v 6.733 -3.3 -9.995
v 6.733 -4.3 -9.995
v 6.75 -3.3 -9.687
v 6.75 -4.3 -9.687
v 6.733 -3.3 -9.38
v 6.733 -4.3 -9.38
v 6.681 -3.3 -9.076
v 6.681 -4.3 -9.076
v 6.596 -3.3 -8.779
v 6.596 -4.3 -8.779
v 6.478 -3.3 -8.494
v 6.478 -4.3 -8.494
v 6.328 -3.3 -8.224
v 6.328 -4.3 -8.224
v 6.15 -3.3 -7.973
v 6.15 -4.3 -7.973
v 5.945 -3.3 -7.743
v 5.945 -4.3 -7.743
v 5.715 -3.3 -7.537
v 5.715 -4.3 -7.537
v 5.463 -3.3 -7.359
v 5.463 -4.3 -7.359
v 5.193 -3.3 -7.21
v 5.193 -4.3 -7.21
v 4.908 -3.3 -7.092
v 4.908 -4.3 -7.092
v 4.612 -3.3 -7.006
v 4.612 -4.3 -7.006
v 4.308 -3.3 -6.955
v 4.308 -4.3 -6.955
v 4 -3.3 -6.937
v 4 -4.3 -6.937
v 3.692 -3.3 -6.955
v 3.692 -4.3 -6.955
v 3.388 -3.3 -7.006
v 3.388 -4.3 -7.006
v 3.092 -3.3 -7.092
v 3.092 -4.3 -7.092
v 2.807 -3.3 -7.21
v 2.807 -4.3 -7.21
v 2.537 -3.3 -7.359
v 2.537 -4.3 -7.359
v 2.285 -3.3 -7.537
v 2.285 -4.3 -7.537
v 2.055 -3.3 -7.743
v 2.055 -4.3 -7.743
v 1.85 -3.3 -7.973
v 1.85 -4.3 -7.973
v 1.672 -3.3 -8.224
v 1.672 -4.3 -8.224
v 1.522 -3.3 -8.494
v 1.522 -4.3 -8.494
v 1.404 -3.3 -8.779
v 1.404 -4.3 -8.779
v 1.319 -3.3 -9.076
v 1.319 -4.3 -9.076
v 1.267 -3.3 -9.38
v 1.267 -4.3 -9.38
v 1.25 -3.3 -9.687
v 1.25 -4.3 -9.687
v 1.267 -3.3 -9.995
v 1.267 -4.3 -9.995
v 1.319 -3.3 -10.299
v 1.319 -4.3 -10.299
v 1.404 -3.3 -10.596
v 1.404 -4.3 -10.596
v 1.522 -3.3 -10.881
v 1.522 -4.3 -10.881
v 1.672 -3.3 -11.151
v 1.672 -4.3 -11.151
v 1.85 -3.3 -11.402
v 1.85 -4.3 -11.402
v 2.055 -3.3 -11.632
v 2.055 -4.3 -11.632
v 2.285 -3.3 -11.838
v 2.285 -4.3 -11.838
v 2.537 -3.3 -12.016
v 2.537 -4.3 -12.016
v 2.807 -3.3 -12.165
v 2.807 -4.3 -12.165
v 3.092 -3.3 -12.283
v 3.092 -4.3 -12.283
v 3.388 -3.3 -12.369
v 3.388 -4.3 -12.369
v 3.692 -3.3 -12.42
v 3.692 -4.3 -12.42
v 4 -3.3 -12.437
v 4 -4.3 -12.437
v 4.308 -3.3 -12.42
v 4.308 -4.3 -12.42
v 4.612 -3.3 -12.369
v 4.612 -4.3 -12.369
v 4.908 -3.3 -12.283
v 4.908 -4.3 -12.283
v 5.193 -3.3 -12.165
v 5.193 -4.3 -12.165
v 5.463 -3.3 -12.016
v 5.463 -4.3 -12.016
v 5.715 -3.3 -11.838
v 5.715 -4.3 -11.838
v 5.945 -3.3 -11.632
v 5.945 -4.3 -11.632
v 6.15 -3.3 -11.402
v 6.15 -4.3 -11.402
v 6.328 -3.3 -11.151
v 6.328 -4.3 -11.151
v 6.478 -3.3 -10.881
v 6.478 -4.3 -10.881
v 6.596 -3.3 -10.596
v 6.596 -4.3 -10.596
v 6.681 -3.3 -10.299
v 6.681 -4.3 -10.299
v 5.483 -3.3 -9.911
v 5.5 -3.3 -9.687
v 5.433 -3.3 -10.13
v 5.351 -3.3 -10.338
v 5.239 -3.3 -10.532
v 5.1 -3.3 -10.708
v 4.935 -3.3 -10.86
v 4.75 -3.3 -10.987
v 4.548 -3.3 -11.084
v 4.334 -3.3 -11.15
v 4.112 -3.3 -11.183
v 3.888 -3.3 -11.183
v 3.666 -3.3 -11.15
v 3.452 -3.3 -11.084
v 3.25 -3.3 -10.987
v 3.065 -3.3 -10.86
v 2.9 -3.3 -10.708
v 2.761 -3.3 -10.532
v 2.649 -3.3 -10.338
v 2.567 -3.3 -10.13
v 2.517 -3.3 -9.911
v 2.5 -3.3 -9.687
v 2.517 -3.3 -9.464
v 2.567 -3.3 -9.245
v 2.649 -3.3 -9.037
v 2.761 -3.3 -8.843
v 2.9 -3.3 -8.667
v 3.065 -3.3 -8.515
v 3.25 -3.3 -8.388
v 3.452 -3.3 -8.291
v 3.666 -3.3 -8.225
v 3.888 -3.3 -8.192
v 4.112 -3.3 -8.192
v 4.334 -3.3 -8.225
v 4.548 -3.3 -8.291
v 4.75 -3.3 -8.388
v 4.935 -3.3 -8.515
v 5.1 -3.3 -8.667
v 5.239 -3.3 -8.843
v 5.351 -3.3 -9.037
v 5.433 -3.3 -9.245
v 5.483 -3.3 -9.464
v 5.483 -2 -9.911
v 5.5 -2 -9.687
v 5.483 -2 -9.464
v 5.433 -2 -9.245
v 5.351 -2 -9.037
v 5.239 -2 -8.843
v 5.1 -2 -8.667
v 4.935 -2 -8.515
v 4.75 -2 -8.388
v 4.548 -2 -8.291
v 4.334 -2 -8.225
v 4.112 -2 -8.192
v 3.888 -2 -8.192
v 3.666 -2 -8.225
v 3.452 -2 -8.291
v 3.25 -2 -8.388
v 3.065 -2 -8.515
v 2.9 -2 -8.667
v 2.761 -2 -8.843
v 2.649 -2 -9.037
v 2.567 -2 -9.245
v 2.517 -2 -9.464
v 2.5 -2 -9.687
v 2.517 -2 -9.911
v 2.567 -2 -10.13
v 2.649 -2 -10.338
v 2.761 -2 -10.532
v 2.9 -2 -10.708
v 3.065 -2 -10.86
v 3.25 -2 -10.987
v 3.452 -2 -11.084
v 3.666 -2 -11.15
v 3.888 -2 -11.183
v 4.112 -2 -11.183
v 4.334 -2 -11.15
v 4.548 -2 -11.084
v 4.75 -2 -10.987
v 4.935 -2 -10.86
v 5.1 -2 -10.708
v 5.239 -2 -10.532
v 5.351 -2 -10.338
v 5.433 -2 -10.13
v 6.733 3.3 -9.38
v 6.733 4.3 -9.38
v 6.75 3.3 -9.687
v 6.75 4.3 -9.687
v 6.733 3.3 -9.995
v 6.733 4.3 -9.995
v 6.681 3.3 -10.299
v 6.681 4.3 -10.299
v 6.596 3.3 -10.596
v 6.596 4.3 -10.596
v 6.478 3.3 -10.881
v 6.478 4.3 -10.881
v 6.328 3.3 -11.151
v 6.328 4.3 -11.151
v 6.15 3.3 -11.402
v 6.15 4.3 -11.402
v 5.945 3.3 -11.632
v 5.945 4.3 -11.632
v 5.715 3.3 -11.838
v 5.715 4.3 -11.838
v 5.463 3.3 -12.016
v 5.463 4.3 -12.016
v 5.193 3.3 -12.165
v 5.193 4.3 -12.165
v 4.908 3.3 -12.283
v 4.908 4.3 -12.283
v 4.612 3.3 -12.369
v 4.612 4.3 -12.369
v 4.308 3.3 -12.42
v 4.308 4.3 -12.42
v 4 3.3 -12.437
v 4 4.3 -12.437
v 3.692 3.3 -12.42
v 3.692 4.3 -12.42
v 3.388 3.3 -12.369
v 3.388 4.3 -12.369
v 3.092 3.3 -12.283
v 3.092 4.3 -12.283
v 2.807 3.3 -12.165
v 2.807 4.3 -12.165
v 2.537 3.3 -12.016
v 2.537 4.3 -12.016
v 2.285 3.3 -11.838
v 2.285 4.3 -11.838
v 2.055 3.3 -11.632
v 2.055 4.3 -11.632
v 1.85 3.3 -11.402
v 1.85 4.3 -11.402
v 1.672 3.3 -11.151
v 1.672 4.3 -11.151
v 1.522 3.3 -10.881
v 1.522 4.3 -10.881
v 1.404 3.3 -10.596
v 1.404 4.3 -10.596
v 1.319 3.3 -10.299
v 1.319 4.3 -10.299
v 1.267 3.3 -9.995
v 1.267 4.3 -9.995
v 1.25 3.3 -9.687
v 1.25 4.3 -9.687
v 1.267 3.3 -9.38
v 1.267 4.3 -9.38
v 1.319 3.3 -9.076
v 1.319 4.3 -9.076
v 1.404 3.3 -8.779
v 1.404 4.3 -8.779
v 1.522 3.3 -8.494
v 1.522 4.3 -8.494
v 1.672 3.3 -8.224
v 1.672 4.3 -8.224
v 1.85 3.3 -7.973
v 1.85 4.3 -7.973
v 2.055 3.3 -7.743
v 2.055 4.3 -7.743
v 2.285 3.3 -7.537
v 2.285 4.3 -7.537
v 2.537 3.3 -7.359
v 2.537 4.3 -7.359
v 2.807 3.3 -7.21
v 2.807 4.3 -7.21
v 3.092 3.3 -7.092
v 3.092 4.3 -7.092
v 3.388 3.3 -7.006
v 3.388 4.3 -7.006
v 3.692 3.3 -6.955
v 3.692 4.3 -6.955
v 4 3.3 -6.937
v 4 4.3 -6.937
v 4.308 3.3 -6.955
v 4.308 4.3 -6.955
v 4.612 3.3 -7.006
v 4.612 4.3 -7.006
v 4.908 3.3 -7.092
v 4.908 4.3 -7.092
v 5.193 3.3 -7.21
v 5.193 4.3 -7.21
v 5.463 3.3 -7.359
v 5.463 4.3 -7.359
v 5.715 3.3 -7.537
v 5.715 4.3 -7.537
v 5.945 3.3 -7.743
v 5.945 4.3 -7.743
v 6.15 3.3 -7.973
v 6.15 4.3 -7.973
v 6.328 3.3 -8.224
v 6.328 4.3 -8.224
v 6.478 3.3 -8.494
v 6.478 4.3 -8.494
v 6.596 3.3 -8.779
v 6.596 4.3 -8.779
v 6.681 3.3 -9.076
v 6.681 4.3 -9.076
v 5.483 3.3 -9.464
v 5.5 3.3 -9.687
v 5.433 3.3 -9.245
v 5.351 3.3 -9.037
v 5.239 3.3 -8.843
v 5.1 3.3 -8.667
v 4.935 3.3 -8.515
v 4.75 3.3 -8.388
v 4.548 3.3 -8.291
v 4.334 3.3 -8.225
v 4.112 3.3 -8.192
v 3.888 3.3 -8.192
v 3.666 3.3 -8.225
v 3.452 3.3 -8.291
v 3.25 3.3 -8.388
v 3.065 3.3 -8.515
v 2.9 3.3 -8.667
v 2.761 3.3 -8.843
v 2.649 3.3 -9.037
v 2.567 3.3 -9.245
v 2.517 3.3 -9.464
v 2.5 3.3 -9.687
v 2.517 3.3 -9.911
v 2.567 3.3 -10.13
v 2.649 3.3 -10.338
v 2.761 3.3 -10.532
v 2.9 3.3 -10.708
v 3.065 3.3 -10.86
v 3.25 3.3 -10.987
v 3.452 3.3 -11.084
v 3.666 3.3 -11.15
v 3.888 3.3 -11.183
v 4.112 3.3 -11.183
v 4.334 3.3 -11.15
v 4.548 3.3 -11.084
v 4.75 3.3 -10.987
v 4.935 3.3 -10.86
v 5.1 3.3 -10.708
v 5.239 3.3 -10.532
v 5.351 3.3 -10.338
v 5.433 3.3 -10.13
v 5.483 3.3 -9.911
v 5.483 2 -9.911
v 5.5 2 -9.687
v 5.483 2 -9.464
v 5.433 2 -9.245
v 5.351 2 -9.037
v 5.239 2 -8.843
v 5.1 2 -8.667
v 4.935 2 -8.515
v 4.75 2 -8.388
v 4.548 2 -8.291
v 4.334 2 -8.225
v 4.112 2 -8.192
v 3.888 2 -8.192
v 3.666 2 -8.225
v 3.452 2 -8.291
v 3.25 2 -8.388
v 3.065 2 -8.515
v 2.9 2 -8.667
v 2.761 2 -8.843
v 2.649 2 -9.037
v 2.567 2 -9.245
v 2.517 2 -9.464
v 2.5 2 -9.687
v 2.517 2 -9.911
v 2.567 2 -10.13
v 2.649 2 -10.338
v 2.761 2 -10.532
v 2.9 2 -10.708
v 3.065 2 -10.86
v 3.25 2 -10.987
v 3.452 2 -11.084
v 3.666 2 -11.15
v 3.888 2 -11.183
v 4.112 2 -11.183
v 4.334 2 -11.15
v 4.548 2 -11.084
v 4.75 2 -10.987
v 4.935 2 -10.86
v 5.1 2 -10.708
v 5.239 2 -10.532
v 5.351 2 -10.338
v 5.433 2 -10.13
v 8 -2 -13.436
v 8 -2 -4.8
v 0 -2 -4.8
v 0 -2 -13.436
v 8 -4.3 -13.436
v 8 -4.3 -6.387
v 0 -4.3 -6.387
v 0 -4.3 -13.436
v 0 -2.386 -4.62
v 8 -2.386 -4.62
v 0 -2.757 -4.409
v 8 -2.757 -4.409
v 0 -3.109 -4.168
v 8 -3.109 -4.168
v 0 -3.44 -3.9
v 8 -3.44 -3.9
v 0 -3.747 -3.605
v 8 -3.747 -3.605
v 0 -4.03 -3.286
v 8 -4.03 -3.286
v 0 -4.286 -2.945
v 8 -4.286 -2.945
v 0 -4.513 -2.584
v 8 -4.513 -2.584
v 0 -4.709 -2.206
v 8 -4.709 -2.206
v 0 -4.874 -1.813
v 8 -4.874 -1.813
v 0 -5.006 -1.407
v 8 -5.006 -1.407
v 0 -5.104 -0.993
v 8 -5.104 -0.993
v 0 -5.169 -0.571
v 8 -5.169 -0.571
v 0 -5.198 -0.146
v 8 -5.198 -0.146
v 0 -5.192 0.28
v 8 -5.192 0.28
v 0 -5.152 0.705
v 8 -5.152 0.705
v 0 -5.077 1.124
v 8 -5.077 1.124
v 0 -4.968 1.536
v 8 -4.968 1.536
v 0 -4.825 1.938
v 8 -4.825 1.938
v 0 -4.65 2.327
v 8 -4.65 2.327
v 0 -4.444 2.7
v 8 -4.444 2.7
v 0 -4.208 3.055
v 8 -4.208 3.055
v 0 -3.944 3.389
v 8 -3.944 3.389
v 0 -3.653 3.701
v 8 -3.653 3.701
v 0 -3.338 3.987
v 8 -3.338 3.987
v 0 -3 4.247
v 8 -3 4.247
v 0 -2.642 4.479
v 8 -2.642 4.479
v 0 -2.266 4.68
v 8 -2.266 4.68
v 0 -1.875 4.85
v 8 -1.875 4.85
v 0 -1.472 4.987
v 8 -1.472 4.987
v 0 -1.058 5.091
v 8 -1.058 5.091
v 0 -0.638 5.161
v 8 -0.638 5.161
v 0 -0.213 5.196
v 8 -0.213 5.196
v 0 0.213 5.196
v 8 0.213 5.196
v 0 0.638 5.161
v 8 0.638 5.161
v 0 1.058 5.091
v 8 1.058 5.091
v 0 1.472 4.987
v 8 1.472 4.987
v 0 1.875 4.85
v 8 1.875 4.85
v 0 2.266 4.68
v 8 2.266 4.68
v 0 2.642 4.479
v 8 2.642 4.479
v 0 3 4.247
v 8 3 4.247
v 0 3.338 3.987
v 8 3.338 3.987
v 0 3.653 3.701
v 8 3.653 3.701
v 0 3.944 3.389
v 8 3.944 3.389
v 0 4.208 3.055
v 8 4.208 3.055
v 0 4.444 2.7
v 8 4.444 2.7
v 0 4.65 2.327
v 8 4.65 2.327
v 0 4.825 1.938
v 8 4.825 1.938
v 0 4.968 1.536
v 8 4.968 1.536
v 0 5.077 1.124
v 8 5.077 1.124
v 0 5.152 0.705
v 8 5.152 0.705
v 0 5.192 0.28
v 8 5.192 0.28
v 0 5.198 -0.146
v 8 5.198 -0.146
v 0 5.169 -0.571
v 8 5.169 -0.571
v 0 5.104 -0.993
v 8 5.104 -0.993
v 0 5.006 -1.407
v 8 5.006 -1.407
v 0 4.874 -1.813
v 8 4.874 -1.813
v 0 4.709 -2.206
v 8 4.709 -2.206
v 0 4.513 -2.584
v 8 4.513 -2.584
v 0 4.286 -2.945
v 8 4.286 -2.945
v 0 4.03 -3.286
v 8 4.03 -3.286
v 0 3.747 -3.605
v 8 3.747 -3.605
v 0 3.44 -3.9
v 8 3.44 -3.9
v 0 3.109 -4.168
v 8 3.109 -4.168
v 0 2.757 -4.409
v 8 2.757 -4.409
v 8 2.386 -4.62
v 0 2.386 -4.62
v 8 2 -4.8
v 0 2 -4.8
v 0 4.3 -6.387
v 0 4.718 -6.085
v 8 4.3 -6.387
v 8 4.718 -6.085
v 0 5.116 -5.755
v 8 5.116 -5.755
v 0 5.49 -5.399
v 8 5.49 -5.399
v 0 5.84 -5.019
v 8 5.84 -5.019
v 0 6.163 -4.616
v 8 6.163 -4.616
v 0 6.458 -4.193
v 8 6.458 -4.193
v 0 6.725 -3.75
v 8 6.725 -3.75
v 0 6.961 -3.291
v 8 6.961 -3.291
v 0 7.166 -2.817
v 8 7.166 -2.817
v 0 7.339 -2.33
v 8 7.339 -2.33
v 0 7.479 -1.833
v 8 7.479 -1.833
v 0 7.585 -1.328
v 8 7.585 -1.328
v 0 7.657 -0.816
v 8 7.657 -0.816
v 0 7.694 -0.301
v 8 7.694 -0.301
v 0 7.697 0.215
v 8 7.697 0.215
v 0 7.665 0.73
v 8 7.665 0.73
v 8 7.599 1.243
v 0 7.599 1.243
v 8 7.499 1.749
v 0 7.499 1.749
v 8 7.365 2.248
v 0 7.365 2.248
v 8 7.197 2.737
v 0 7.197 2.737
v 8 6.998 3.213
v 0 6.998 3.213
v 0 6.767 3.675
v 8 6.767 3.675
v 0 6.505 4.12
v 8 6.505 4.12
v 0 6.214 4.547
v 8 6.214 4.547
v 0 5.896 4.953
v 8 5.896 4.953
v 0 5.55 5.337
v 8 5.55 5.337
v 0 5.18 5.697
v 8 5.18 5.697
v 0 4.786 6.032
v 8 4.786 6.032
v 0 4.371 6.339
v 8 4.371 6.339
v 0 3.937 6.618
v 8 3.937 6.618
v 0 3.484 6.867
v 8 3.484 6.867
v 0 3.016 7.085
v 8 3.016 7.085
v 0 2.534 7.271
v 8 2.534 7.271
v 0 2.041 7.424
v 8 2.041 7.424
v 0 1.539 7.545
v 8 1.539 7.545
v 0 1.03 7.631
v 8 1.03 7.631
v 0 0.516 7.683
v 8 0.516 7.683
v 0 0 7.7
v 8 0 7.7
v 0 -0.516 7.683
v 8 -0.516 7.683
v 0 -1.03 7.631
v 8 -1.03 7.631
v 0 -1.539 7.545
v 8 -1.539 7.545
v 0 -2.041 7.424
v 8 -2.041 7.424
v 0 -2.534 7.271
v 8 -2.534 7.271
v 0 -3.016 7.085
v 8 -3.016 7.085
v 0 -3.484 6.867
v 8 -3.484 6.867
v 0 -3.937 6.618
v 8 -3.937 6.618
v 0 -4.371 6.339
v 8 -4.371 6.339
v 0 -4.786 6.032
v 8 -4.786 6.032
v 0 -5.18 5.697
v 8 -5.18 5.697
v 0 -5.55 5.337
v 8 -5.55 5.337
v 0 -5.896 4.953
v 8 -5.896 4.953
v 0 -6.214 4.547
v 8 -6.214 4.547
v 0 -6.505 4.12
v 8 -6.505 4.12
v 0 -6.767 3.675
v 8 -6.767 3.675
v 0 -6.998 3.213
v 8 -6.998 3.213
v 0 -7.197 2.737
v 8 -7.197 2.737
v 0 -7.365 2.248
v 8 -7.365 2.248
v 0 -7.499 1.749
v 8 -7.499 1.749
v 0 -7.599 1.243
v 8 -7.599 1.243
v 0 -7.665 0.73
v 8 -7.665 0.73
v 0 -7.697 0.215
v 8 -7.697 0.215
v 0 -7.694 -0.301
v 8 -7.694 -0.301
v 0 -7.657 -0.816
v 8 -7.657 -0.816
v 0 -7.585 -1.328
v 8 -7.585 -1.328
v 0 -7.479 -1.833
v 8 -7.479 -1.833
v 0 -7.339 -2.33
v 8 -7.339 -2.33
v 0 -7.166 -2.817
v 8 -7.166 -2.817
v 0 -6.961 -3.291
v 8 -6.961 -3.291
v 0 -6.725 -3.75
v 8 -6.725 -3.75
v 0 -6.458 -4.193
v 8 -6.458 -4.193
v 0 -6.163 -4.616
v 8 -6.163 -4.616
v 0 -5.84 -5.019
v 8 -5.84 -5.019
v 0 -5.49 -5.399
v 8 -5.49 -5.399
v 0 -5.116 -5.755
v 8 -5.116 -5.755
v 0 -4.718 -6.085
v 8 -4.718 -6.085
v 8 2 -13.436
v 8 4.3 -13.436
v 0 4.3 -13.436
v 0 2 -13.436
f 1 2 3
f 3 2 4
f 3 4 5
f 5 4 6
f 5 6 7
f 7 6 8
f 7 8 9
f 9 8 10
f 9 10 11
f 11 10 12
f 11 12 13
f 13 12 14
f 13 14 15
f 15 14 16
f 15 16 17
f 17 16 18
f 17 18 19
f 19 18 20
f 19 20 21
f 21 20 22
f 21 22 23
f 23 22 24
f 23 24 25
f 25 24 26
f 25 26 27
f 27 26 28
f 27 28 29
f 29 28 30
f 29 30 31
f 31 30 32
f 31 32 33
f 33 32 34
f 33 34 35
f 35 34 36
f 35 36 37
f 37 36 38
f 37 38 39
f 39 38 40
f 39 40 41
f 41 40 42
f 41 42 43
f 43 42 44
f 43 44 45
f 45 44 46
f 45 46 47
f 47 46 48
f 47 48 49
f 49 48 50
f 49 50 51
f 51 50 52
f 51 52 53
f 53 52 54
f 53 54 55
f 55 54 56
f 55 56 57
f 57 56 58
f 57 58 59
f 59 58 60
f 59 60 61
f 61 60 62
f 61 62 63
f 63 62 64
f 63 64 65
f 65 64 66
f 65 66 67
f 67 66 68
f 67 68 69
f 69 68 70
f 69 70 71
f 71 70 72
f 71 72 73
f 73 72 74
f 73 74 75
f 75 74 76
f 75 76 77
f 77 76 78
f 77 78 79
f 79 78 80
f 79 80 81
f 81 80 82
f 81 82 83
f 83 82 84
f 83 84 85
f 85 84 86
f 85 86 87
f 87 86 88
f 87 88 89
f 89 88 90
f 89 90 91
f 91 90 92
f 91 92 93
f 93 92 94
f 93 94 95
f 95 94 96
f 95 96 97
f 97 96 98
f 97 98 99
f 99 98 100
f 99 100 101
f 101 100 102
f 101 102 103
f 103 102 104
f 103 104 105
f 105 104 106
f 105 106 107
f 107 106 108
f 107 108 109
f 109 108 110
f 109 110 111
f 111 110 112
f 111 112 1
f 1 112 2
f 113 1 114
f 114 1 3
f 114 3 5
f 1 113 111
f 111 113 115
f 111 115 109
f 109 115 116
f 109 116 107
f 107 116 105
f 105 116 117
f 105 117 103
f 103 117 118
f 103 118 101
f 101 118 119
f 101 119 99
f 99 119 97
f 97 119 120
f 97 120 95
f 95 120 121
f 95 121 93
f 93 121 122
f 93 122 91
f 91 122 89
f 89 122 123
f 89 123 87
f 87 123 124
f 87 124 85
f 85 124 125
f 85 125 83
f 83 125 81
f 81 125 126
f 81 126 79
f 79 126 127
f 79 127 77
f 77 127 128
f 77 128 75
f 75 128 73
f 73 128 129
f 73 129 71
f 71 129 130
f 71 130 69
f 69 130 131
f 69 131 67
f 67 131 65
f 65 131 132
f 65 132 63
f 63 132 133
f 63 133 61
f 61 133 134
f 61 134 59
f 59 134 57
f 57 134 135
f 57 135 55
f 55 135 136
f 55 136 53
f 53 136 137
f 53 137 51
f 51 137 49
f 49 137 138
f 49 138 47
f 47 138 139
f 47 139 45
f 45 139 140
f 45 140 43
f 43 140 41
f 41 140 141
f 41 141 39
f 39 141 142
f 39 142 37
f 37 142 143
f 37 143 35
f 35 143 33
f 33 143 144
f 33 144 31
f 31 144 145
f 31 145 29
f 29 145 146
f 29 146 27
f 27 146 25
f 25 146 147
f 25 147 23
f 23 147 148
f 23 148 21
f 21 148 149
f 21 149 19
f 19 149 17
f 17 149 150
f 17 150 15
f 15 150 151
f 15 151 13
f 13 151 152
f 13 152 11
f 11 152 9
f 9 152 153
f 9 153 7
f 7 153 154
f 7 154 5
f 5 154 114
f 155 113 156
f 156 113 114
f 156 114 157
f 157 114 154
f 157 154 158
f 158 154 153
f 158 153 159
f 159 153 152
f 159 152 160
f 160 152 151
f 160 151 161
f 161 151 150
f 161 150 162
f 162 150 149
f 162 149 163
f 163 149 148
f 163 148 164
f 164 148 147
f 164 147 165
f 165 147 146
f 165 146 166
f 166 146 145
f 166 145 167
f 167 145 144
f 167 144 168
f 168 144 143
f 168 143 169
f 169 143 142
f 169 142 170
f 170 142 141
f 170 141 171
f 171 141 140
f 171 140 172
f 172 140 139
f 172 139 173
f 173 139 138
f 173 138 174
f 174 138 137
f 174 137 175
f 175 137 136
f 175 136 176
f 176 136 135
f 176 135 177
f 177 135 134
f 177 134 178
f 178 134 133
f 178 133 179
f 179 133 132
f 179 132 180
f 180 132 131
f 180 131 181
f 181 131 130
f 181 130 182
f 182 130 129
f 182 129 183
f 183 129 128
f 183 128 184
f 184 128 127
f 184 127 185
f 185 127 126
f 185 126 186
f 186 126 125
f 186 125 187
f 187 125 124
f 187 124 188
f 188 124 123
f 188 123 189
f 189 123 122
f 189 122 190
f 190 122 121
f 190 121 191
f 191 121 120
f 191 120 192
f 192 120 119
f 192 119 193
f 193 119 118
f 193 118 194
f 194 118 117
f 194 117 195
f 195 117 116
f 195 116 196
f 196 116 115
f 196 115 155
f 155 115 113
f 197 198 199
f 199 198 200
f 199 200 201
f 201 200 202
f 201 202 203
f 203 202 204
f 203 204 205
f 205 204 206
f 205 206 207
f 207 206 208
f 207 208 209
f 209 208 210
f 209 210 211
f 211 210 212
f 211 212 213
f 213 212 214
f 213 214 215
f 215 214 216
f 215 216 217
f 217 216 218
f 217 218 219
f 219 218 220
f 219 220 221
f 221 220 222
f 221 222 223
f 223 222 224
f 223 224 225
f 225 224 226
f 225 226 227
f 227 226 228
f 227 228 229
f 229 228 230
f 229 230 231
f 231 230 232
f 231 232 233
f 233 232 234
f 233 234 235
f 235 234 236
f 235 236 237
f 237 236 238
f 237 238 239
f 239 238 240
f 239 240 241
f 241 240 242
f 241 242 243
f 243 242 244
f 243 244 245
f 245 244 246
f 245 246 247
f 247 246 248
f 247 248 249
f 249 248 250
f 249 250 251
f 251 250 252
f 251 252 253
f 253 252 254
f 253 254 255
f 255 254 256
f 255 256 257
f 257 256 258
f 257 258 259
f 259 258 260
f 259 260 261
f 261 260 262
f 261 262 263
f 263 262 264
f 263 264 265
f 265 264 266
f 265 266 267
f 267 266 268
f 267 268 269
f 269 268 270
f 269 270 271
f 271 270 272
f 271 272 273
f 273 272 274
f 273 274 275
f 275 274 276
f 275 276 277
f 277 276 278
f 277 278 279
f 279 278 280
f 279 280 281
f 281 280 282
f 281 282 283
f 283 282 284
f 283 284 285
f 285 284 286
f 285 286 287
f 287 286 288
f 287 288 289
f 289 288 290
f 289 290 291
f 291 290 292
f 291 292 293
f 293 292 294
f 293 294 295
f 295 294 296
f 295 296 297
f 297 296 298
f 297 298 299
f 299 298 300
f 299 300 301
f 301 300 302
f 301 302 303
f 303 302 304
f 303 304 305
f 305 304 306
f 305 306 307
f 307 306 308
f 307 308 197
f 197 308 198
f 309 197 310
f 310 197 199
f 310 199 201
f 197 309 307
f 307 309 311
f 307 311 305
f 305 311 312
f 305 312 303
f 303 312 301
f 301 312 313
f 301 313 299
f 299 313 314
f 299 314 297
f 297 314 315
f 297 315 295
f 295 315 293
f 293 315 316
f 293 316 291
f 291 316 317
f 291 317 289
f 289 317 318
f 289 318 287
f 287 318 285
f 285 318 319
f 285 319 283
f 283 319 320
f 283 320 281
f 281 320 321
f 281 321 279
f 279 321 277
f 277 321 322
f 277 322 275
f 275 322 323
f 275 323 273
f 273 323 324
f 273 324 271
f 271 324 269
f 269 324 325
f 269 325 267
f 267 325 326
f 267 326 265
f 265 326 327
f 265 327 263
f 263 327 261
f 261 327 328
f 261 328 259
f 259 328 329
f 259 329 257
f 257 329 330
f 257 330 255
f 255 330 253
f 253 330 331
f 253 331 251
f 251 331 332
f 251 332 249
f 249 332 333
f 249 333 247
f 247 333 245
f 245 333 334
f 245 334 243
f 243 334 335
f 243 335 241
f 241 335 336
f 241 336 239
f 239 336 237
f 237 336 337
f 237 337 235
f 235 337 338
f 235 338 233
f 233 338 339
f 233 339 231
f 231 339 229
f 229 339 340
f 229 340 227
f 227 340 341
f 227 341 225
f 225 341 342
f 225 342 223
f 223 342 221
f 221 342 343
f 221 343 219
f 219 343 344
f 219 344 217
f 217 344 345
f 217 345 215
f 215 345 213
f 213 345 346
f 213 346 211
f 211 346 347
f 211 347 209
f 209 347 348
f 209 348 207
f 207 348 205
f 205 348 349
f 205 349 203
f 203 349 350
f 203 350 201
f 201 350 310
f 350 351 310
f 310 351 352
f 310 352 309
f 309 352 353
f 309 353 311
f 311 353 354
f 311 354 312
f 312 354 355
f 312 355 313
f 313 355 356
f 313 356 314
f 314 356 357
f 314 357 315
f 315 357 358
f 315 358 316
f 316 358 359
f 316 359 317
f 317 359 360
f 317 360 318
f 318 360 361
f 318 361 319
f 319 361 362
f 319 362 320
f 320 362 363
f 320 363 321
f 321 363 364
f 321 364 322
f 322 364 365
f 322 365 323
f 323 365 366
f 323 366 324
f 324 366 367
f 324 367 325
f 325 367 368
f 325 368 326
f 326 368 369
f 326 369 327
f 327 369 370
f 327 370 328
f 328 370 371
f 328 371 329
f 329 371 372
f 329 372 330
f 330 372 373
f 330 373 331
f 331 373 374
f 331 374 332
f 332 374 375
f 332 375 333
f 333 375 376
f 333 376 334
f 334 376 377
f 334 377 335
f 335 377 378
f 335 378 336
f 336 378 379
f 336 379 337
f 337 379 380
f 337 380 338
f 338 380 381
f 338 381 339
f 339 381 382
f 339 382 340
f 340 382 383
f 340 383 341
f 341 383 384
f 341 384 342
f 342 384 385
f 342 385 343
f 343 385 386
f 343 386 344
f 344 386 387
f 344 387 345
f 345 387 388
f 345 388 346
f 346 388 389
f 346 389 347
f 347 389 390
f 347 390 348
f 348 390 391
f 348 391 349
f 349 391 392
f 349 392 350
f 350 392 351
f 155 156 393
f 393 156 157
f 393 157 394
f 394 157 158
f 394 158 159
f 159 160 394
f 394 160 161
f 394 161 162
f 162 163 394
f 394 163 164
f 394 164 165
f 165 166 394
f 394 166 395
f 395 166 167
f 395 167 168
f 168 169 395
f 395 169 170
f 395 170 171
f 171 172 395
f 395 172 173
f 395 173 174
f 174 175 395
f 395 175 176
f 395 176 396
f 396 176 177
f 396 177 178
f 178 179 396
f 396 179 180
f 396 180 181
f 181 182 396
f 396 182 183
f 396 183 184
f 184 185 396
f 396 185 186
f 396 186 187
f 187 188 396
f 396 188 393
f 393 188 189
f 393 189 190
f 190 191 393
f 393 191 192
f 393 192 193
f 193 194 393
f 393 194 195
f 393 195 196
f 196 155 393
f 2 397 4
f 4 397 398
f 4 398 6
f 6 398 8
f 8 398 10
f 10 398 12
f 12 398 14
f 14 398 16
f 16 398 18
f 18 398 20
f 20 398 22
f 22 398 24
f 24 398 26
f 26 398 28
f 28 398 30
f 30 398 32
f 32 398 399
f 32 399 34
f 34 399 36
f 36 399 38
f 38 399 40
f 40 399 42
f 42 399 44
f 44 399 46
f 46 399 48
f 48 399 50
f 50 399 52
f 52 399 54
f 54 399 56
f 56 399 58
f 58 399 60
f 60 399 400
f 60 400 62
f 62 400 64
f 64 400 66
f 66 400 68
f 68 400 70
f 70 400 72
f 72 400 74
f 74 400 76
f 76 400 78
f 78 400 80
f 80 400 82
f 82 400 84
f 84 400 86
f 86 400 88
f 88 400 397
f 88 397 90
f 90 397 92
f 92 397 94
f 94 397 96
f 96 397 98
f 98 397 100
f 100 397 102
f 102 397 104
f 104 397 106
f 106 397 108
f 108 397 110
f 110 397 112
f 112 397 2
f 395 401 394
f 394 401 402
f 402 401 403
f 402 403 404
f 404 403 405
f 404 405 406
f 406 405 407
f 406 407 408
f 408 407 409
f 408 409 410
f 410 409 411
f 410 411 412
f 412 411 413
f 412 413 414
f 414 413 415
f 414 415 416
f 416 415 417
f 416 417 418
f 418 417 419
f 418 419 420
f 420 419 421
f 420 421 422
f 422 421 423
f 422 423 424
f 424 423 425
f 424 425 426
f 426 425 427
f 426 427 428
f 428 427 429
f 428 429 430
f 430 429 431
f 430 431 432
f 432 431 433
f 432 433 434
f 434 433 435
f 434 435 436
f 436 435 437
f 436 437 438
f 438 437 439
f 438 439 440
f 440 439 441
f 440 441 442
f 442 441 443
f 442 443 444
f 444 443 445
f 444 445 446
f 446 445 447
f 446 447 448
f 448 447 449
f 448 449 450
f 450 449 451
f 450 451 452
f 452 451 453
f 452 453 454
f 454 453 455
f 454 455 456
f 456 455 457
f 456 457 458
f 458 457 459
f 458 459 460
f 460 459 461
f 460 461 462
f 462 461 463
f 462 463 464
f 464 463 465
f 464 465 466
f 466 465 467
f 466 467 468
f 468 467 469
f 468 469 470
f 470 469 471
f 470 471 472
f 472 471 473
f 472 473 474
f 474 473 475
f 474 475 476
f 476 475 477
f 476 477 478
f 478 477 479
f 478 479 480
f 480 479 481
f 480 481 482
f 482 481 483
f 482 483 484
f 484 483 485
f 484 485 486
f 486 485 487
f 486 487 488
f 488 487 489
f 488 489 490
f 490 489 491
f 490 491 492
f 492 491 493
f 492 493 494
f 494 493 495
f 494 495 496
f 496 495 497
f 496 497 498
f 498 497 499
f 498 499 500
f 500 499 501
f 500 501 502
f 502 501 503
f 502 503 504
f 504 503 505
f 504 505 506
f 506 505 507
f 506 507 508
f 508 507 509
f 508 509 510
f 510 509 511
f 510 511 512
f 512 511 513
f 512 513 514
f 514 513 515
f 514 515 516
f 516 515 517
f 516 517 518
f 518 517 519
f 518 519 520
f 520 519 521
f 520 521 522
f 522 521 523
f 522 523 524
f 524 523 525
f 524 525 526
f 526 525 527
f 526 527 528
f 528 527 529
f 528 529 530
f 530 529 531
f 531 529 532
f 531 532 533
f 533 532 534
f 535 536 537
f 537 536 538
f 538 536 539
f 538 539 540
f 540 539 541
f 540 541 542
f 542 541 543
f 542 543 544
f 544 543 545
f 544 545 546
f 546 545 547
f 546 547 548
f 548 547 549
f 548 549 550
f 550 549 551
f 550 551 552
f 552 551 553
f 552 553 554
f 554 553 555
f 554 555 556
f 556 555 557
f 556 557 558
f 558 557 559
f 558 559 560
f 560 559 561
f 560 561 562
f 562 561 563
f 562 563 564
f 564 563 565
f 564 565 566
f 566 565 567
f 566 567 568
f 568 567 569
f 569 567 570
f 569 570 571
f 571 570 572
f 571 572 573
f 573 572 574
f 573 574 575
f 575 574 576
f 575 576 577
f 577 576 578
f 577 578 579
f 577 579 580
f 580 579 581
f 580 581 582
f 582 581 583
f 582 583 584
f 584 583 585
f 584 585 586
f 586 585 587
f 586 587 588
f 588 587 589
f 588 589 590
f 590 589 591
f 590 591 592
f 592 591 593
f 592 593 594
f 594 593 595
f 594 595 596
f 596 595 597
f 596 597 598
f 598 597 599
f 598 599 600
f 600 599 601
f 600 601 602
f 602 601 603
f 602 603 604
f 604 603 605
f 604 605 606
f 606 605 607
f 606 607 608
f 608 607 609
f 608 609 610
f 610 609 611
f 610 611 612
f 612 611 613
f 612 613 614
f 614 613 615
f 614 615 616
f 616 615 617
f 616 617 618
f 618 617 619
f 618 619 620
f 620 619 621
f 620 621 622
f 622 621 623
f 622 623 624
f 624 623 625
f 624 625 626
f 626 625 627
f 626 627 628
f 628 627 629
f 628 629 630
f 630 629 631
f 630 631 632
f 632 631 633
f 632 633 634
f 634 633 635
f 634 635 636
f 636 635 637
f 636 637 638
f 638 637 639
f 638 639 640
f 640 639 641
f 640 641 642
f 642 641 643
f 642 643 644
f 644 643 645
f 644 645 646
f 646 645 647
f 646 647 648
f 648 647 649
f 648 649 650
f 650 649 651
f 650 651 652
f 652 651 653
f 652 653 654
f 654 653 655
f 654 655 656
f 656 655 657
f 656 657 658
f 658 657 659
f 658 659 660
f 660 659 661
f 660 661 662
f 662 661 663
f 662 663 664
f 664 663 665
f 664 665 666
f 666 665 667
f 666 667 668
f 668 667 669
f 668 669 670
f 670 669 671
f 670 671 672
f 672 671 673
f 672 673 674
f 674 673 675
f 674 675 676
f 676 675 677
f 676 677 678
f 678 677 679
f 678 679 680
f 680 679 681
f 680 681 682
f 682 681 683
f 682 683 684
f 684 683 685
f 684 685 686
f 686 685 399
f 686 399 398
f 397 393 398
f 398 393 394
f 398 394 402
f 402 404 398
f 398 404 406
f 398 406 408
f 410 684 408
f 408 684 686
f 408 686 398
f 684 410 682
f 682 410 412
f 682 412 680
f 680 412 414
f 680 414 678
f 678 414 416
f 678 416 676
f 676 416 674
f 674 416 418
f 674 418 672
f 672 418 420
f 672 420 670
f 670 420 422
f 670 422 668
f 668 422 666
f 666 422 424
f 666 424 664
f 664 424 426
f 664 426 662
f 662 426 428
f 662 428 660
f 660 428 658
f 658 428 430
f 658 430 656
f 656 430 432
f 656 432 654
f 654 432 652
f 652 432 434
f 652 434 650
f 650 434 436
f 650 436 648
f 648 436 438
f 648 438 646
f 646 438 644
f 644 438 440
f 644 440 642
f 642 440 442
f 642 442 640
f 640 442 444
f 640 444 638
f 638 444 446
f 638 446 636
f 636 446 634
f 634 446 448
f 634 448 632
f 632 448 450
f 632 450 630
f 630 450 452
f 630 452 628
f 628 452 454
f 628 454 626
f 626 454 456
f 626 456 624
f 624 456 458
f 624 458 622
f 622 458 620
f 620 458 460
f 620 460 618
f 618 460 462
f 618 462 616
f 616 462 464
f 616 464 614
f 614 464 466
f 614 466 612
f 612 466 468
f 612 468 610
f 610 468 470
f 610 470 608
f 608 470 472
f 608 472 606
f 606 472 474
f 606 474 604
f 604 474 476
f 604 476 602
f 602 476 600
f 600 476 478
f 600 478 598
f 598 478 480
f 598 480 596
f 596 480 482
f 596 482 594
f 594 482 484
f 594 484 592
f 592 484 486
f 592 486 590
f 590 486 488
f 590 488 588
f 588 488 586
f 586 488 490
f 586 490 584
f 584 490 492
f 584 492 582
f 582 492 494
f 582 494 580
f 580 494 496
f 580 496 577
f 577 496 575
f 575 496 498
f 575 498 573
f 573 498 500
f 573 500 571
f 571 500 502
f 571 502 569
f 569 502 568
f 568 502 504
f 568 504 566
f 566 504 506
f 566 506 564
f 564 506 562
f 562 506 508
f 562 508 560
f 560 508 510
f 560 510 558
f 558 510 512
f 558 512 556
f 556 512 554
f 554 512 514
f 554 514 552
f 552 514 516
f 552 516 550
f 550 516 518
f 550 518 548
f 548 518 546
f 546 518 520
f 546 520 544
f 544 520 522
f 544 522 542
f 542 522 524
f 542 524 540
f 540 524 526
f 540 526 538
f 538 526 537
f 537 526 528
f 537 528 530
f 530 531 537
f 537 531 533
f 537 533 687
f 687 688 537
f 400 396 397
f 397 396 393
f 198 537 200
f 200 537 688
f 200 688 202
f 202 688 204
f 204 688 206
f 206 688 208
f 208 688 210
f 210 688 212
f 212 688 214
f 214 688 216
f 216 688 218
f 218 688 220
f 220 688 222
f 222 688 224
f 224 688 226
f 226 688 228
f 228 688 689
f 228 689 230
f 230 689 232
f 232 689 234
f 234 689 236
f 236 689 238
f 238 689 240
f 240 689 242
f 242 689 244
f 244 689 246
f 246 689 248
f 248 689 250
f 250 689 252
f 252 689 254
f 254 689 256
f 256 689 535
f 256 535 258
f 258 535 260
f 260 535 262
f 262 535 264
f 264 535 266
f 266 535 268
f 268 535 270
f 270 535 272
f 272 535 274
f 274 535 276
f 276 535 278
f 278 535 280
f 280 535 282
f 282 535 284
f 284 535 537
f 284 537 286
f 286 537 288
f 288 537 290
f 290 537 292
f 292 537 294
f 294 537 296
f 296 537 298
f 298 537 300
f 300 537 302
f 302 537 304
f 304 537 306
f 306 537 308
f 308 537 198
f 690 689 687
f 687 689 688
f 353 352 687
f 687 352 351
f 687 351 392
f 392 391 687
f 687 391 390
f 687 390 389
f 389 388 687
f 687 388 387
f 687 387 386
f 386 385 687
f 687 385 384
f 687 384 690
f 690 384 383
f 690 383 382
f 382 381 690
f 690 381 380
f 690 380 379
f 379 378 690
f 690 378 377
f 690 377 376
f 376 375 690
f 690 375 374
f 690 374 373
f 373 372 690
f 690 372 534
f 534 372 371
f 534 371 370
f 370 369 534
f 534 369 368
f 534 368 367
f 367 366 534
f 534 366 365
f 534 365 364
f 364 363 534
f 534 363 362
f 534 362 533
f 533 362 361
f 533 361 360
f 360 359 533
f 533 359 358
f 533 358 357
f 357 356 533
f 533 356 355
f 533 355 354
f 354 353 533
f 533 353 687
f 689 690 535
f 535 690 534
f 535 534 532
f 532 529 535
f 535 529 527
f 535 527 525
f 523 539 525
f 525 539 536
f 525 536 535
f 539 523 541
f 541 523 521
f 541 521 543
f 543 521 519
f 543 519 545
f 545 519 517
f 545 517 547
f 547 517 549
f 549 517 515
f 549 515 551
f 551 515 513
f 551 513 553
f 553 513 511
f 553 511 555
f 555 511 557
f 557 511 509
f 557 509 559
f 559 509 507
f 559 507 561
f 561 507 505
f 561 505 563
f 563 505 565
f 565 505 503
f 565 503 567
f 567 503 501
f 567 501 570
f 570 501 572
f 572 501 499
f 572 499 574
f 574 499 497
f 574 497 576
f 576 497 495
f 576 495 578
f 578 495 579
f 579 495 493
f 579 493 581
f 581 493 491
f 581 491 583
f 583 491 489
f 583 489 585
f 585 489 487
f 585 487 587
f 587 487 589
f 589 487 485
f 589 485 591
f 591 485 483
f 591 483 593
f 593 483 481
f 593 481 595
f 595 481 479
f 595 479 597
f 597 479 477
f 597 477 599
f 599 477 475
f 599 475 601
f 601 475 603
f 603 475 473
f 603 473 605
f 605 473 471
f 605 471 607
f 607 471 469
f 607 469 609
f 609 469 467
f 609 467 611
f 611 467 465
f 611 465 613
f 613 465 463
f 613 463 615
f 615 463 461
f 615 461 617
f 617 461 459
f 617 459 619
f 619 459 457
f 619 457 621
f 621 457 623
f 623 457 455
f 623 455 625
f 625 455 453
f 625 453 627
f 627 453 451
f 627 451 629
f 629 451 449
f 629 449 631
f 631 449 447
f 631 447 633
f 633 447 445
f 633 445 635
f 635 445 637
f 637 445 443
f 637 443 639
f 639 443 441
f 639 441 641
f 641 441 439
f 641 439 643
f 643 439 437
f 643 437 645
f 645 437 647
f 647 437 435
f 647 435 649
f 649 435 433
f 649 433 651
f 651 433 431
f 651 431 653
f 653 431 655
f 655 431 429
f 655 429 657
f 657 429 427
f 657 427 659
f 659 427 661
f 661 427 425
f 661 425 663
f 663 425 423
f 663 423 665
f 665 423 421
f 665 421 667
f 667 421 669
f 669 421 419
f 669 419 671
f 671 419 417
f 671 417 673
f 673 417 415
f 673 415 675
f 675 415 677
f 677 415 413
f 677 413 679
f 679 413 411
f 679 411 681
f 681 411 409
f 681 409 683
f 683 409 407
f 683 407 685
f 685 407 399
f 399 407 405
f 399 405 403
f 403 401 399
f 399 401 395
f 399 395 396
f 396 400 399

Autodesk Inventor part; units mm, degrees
ref_plane "YZ Plane" through (0, 0, 0) normal (1, 0, 0) x (0, 1, 0)
ref_plane "XZ Plane" through (0, 0, 0) normal (0, 1, 0) x (-1, 0, 0)
ref_plane "XY Plane" through (0, 0, 0) normal (0, 0, 1) x (1, 0, 0)
sketch "Sketch2" plane through (0, 0, 0) normal (1, 0, 0) x (0, 1, 0)
  arc A0 (2, -4.8) -> (-2, -4.8) centre (0, 0) ccw
  arc A1 (2, -7.4357) -> (-2, -7.4357) centre (0, 0) ccw
  line L0 (0, 0) -> (2, -4.8)
  line L1 (2, -4.8) -> (2, -7.4357)
  line L2 (2, -7.4357) -> (2, -13.4357)
  line L3 (2, -13.4357) -> (4.3, -13.4357)
  line L4 (4.3, -13.4357) -> (4.3, -6.3875)
  line L5 (0, 0) -> (0, -16.8496) construction
  line L6 (0, 0) -> (-2, -4.8)
  line L7 (-2, -4.8) -> (-2, -7.4357)
  line L8 (-2, -7.4357) -> (-2, -13.4357)
  line L9 (-2, -13.4357) -> (-4.3, -13.4357)
  line L10 (-4.3, -13.4357) -> (-4.3, -6.3875)
  line L11 (-4.3, -6.3875) -> (-2, -6.3875)
  arc A2 (0, -5.2) -> (2, -4.8) centre (0, 0) ccw
  arc A3 (0, -7.7) -> (2, -7.4357) centre (0, 0) ccw
  arc A4 (-2, -7.4357) -> (0, -7.7) centre (0, 0) ccw
  arc A5 (-2, -4.8) -> (0, -5.2) centre (0, 0) ccw
  dimension "d6" = 10.4
  dimension "d7" = 2.5
  dimension "d9" = 2
  dimension "d10" = 6
  dimension "d11" = 2.3
  dimension "d12" = 90
extrude "Extrusion1" add sketch "Sketch2" along normal blind 8 contours A0 L7 L11 A1 L1 | A1 L4 L3 L2 | L7 A1 L11 | L8 L9 L10 A1
sketch "Sketch3" plane through (0, 4.3, -6.3875) normal (0, 1, 0) x (1, 0, 0)
  line L0 (0, 7.0482) -> (0, 0) projected
  line L1 (0, 0) -> (8, 0) projected
  line L2 (8, 7.0482) -> (8, 0) projected
  line L3 (0, 7.0482) -> (8, 7.0482) projected
  circle A0 centre (4, 3.3) radius 1.5
  point P0 (0, -6.3875)
  dimension "d15" = 3
  dimension "d21" = 3.3
extrude "Extrusion2" cut sketch "Sketch3" against normal up to next contours A0
sketch "Sketch4" plane through (0, 4.3, -6.3875) normal (0, 1, 0) x (1, 0, 0)
  line L0 (0, 7.0482) -> (0, -1.5875) projected
  line L1 (0, -1.5875) -> (8, -1.5875) projected
  line L2 (8, 7.0482) -> (8, -1.5875) projected
  line L3 (0, 7.0482) -> (8, 7.0482) projected
  circle A0 centre (4, 3.3) radius 1.5 projected
  line L4 (0, 7.0482) -> (0, 0) projected
  line L5 (0, 0) -> (8, 0) projected
  line L6 (8, 7.0482) -> (8, 0) projected
  line L7 (0, 7.0482) -> (8, 7.0482) projected
  circle A1 centre (4, 3.3) radius 2.75
  point P0 (0, -6.3875)
  dimension "d18" = 5.5
extrude "Extrusion3" cut sketch "Sketch4" against normal blind 1 contours A1
mirror "Mirror1" about plane through (0, 0, 0) normal (0, 1, 0) of "Extrusion3", "Extrusion2"
properties part number "10mm rod Top Clamp"
